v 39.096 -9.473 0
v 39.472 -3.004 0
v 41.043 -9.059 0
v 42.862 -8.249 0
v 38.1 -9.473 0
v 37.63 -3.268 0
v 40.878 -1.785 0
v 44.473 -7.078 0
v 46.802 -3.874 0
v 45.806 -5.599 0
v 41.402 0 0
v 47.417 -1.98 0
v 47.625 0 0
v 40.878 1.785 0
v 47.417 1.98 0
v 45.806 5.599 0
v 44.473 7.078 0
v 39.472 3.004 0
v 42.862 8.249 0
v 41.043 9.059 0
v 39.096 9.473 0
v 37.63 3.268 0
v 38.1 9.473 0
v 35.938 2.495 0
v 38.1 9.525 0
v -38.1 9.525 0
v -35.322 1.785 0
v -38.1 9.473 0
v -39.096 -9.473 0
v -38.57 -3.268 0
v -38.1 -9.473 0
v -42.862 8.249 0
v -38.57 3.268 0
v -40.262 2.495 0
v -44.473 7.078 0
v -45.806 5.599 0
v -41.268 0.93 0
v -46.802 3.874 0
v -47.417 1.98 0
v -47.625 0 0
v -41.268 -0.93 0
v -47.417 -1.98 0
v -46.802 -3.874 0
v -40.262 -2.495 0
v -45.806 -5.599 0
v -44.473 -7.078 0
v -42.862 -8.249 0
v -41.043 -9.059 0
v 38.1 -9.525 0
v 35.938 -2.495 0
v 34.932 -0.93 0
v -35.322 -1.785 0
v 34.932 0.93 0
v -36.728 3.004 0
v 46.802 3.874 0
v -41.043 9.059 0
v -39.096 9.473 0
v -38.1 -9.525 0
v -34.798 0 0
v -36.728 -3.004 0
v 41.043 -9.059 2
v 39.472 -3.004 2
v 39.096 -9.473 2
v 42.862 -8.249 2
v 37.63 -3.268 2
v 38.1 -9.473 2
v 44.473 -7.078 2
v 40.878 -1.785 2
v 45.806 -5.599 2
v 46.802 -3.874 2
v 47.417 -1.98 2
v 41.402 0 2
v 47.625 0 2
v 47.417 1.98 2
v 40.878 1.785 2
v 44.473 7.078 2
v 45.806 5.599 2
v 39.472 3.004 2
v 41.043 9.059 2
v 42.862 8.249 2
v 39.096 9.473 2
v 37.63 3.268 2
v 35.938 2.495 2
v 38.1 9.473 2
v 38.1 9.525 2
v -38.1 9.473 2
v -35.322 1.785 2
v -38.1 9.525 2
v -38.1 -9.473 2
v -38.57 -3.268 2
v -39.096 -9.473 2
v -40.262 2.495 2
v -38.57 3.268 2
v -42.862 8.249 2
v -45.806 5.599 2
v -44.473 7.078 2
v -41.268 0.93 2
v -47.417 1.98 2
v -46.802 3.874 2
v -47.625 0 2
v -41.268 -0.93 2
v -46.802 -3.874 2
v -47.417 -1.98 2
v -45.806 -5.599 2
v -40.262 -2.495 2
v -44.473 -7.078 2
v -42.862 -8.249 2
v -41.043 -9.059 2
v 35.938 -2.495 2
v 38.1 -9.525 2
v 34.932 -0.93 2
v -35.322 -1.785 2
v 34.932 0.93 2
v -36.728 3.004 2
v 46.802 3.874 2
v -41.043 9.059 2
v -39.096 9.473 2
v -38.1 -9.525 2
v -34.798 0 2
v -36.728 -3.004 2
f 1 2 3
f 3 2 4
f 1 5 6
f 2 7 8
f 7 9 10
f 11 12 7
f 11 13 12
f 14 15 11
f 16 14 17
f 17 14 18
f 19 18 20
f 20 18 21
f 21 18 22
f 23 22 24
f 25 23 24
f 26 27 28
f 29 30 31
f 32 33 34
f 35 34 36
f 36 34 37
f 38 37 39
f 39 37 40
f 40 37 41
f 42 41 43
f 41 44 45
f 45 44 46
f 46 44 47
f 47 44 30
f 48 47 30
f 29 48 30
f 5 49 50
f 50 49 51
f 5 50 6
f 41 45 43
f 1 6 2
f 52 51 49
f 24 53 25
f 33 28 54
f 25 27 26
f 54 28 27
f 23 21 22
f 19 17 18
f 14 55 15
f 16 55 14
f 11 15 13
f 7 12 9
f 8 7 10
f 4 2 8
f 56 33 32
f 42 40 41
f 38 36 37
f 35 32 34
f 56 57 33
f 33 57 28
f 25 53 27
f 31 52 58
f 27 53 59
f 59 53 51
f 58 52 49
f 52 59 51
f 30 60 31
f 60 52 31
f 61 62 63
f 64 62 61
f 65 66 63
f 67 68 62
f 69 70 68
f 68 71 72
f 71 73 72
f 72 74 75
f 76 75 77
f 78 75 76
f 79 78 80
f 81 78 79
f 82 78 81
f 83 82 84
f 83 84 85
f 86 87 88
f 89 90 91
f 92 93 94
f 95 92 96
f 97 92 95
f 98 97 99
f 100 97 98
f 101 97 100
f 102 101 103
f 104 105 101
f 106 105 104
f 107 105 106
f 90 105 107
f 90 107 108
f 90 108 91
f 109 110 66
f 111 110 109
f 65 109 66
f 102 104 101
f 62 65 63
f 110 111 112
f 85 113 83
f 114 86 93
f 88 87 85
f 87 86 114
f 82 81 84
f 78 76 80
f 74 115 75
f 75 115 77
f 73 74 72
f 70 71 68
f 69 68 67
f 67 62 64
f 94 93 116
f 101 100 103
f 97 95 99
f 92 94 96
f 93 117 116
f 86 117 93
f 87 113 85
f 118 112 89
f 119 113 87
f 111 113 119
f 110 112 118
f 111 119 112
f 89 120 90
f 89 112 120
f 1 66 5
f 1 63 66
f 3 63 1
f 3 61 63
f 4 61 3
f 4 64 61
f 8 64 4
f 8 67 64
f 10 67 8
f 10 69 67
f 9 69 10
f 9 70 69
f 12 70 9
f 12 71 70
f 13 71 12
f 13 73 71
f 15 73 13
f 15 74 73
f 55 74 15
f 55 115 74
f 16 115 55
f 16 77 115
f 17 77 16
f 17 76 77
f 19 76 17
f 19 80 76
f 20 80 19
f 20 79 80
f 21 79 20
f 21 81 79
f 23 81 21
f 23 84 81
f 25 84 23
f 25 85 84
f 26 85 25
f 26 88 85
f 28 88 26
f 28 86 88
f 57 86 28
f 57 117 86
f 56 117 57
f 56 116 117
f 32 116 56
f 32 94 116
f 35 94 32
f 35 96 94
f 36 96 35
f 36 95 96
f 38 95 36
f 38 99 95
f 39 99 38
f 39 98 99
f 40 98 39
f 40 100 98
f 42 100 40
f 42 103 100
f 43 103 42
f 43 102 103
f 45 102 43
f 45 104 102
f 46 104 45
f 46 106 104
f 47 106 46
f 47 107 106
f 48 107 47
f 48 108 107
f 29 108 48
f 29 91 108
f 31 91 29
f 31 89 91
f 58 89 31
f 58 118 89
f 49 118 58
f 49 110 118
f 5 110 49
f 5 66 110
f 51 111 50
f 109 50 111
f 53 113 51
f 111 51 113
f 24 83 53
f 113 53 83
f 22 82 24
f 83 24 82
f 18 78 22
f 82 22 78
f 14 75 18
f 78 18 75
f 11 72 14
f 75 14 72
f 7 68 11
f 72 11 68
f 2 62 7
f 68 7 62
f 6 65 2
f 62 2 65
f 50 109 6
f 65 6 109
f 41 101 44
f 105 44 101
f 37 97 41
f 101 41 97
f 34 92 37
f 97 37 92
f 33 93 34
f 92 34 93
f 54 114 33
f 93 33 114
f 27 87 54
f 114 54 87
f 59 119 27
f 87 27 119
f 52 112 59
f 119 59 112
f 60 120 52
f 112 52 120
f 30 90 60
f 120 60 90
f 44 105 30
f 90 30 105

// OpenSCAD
inch = 25.4;
length = 3 * inch;
width = 0.75 * inch;
height = 2;
hole_diameter = 0.26 * inch;

linear_extrude(height=height) {
difference() {
    union() {
translate([length / 2, 0, 0]){
circle(r=width/2);
};

translate([-length / 2, 0, 0]){
circle(r=width/2);
};

square([length, width], center=true);
};
union() {
    translate([length / 2, 0, 0]){
circle(r=hole_diameter/2);
}

    translate([-length / 2, 0, 0]){
circle(r=hole_diameter/2);
}


}
}
}
